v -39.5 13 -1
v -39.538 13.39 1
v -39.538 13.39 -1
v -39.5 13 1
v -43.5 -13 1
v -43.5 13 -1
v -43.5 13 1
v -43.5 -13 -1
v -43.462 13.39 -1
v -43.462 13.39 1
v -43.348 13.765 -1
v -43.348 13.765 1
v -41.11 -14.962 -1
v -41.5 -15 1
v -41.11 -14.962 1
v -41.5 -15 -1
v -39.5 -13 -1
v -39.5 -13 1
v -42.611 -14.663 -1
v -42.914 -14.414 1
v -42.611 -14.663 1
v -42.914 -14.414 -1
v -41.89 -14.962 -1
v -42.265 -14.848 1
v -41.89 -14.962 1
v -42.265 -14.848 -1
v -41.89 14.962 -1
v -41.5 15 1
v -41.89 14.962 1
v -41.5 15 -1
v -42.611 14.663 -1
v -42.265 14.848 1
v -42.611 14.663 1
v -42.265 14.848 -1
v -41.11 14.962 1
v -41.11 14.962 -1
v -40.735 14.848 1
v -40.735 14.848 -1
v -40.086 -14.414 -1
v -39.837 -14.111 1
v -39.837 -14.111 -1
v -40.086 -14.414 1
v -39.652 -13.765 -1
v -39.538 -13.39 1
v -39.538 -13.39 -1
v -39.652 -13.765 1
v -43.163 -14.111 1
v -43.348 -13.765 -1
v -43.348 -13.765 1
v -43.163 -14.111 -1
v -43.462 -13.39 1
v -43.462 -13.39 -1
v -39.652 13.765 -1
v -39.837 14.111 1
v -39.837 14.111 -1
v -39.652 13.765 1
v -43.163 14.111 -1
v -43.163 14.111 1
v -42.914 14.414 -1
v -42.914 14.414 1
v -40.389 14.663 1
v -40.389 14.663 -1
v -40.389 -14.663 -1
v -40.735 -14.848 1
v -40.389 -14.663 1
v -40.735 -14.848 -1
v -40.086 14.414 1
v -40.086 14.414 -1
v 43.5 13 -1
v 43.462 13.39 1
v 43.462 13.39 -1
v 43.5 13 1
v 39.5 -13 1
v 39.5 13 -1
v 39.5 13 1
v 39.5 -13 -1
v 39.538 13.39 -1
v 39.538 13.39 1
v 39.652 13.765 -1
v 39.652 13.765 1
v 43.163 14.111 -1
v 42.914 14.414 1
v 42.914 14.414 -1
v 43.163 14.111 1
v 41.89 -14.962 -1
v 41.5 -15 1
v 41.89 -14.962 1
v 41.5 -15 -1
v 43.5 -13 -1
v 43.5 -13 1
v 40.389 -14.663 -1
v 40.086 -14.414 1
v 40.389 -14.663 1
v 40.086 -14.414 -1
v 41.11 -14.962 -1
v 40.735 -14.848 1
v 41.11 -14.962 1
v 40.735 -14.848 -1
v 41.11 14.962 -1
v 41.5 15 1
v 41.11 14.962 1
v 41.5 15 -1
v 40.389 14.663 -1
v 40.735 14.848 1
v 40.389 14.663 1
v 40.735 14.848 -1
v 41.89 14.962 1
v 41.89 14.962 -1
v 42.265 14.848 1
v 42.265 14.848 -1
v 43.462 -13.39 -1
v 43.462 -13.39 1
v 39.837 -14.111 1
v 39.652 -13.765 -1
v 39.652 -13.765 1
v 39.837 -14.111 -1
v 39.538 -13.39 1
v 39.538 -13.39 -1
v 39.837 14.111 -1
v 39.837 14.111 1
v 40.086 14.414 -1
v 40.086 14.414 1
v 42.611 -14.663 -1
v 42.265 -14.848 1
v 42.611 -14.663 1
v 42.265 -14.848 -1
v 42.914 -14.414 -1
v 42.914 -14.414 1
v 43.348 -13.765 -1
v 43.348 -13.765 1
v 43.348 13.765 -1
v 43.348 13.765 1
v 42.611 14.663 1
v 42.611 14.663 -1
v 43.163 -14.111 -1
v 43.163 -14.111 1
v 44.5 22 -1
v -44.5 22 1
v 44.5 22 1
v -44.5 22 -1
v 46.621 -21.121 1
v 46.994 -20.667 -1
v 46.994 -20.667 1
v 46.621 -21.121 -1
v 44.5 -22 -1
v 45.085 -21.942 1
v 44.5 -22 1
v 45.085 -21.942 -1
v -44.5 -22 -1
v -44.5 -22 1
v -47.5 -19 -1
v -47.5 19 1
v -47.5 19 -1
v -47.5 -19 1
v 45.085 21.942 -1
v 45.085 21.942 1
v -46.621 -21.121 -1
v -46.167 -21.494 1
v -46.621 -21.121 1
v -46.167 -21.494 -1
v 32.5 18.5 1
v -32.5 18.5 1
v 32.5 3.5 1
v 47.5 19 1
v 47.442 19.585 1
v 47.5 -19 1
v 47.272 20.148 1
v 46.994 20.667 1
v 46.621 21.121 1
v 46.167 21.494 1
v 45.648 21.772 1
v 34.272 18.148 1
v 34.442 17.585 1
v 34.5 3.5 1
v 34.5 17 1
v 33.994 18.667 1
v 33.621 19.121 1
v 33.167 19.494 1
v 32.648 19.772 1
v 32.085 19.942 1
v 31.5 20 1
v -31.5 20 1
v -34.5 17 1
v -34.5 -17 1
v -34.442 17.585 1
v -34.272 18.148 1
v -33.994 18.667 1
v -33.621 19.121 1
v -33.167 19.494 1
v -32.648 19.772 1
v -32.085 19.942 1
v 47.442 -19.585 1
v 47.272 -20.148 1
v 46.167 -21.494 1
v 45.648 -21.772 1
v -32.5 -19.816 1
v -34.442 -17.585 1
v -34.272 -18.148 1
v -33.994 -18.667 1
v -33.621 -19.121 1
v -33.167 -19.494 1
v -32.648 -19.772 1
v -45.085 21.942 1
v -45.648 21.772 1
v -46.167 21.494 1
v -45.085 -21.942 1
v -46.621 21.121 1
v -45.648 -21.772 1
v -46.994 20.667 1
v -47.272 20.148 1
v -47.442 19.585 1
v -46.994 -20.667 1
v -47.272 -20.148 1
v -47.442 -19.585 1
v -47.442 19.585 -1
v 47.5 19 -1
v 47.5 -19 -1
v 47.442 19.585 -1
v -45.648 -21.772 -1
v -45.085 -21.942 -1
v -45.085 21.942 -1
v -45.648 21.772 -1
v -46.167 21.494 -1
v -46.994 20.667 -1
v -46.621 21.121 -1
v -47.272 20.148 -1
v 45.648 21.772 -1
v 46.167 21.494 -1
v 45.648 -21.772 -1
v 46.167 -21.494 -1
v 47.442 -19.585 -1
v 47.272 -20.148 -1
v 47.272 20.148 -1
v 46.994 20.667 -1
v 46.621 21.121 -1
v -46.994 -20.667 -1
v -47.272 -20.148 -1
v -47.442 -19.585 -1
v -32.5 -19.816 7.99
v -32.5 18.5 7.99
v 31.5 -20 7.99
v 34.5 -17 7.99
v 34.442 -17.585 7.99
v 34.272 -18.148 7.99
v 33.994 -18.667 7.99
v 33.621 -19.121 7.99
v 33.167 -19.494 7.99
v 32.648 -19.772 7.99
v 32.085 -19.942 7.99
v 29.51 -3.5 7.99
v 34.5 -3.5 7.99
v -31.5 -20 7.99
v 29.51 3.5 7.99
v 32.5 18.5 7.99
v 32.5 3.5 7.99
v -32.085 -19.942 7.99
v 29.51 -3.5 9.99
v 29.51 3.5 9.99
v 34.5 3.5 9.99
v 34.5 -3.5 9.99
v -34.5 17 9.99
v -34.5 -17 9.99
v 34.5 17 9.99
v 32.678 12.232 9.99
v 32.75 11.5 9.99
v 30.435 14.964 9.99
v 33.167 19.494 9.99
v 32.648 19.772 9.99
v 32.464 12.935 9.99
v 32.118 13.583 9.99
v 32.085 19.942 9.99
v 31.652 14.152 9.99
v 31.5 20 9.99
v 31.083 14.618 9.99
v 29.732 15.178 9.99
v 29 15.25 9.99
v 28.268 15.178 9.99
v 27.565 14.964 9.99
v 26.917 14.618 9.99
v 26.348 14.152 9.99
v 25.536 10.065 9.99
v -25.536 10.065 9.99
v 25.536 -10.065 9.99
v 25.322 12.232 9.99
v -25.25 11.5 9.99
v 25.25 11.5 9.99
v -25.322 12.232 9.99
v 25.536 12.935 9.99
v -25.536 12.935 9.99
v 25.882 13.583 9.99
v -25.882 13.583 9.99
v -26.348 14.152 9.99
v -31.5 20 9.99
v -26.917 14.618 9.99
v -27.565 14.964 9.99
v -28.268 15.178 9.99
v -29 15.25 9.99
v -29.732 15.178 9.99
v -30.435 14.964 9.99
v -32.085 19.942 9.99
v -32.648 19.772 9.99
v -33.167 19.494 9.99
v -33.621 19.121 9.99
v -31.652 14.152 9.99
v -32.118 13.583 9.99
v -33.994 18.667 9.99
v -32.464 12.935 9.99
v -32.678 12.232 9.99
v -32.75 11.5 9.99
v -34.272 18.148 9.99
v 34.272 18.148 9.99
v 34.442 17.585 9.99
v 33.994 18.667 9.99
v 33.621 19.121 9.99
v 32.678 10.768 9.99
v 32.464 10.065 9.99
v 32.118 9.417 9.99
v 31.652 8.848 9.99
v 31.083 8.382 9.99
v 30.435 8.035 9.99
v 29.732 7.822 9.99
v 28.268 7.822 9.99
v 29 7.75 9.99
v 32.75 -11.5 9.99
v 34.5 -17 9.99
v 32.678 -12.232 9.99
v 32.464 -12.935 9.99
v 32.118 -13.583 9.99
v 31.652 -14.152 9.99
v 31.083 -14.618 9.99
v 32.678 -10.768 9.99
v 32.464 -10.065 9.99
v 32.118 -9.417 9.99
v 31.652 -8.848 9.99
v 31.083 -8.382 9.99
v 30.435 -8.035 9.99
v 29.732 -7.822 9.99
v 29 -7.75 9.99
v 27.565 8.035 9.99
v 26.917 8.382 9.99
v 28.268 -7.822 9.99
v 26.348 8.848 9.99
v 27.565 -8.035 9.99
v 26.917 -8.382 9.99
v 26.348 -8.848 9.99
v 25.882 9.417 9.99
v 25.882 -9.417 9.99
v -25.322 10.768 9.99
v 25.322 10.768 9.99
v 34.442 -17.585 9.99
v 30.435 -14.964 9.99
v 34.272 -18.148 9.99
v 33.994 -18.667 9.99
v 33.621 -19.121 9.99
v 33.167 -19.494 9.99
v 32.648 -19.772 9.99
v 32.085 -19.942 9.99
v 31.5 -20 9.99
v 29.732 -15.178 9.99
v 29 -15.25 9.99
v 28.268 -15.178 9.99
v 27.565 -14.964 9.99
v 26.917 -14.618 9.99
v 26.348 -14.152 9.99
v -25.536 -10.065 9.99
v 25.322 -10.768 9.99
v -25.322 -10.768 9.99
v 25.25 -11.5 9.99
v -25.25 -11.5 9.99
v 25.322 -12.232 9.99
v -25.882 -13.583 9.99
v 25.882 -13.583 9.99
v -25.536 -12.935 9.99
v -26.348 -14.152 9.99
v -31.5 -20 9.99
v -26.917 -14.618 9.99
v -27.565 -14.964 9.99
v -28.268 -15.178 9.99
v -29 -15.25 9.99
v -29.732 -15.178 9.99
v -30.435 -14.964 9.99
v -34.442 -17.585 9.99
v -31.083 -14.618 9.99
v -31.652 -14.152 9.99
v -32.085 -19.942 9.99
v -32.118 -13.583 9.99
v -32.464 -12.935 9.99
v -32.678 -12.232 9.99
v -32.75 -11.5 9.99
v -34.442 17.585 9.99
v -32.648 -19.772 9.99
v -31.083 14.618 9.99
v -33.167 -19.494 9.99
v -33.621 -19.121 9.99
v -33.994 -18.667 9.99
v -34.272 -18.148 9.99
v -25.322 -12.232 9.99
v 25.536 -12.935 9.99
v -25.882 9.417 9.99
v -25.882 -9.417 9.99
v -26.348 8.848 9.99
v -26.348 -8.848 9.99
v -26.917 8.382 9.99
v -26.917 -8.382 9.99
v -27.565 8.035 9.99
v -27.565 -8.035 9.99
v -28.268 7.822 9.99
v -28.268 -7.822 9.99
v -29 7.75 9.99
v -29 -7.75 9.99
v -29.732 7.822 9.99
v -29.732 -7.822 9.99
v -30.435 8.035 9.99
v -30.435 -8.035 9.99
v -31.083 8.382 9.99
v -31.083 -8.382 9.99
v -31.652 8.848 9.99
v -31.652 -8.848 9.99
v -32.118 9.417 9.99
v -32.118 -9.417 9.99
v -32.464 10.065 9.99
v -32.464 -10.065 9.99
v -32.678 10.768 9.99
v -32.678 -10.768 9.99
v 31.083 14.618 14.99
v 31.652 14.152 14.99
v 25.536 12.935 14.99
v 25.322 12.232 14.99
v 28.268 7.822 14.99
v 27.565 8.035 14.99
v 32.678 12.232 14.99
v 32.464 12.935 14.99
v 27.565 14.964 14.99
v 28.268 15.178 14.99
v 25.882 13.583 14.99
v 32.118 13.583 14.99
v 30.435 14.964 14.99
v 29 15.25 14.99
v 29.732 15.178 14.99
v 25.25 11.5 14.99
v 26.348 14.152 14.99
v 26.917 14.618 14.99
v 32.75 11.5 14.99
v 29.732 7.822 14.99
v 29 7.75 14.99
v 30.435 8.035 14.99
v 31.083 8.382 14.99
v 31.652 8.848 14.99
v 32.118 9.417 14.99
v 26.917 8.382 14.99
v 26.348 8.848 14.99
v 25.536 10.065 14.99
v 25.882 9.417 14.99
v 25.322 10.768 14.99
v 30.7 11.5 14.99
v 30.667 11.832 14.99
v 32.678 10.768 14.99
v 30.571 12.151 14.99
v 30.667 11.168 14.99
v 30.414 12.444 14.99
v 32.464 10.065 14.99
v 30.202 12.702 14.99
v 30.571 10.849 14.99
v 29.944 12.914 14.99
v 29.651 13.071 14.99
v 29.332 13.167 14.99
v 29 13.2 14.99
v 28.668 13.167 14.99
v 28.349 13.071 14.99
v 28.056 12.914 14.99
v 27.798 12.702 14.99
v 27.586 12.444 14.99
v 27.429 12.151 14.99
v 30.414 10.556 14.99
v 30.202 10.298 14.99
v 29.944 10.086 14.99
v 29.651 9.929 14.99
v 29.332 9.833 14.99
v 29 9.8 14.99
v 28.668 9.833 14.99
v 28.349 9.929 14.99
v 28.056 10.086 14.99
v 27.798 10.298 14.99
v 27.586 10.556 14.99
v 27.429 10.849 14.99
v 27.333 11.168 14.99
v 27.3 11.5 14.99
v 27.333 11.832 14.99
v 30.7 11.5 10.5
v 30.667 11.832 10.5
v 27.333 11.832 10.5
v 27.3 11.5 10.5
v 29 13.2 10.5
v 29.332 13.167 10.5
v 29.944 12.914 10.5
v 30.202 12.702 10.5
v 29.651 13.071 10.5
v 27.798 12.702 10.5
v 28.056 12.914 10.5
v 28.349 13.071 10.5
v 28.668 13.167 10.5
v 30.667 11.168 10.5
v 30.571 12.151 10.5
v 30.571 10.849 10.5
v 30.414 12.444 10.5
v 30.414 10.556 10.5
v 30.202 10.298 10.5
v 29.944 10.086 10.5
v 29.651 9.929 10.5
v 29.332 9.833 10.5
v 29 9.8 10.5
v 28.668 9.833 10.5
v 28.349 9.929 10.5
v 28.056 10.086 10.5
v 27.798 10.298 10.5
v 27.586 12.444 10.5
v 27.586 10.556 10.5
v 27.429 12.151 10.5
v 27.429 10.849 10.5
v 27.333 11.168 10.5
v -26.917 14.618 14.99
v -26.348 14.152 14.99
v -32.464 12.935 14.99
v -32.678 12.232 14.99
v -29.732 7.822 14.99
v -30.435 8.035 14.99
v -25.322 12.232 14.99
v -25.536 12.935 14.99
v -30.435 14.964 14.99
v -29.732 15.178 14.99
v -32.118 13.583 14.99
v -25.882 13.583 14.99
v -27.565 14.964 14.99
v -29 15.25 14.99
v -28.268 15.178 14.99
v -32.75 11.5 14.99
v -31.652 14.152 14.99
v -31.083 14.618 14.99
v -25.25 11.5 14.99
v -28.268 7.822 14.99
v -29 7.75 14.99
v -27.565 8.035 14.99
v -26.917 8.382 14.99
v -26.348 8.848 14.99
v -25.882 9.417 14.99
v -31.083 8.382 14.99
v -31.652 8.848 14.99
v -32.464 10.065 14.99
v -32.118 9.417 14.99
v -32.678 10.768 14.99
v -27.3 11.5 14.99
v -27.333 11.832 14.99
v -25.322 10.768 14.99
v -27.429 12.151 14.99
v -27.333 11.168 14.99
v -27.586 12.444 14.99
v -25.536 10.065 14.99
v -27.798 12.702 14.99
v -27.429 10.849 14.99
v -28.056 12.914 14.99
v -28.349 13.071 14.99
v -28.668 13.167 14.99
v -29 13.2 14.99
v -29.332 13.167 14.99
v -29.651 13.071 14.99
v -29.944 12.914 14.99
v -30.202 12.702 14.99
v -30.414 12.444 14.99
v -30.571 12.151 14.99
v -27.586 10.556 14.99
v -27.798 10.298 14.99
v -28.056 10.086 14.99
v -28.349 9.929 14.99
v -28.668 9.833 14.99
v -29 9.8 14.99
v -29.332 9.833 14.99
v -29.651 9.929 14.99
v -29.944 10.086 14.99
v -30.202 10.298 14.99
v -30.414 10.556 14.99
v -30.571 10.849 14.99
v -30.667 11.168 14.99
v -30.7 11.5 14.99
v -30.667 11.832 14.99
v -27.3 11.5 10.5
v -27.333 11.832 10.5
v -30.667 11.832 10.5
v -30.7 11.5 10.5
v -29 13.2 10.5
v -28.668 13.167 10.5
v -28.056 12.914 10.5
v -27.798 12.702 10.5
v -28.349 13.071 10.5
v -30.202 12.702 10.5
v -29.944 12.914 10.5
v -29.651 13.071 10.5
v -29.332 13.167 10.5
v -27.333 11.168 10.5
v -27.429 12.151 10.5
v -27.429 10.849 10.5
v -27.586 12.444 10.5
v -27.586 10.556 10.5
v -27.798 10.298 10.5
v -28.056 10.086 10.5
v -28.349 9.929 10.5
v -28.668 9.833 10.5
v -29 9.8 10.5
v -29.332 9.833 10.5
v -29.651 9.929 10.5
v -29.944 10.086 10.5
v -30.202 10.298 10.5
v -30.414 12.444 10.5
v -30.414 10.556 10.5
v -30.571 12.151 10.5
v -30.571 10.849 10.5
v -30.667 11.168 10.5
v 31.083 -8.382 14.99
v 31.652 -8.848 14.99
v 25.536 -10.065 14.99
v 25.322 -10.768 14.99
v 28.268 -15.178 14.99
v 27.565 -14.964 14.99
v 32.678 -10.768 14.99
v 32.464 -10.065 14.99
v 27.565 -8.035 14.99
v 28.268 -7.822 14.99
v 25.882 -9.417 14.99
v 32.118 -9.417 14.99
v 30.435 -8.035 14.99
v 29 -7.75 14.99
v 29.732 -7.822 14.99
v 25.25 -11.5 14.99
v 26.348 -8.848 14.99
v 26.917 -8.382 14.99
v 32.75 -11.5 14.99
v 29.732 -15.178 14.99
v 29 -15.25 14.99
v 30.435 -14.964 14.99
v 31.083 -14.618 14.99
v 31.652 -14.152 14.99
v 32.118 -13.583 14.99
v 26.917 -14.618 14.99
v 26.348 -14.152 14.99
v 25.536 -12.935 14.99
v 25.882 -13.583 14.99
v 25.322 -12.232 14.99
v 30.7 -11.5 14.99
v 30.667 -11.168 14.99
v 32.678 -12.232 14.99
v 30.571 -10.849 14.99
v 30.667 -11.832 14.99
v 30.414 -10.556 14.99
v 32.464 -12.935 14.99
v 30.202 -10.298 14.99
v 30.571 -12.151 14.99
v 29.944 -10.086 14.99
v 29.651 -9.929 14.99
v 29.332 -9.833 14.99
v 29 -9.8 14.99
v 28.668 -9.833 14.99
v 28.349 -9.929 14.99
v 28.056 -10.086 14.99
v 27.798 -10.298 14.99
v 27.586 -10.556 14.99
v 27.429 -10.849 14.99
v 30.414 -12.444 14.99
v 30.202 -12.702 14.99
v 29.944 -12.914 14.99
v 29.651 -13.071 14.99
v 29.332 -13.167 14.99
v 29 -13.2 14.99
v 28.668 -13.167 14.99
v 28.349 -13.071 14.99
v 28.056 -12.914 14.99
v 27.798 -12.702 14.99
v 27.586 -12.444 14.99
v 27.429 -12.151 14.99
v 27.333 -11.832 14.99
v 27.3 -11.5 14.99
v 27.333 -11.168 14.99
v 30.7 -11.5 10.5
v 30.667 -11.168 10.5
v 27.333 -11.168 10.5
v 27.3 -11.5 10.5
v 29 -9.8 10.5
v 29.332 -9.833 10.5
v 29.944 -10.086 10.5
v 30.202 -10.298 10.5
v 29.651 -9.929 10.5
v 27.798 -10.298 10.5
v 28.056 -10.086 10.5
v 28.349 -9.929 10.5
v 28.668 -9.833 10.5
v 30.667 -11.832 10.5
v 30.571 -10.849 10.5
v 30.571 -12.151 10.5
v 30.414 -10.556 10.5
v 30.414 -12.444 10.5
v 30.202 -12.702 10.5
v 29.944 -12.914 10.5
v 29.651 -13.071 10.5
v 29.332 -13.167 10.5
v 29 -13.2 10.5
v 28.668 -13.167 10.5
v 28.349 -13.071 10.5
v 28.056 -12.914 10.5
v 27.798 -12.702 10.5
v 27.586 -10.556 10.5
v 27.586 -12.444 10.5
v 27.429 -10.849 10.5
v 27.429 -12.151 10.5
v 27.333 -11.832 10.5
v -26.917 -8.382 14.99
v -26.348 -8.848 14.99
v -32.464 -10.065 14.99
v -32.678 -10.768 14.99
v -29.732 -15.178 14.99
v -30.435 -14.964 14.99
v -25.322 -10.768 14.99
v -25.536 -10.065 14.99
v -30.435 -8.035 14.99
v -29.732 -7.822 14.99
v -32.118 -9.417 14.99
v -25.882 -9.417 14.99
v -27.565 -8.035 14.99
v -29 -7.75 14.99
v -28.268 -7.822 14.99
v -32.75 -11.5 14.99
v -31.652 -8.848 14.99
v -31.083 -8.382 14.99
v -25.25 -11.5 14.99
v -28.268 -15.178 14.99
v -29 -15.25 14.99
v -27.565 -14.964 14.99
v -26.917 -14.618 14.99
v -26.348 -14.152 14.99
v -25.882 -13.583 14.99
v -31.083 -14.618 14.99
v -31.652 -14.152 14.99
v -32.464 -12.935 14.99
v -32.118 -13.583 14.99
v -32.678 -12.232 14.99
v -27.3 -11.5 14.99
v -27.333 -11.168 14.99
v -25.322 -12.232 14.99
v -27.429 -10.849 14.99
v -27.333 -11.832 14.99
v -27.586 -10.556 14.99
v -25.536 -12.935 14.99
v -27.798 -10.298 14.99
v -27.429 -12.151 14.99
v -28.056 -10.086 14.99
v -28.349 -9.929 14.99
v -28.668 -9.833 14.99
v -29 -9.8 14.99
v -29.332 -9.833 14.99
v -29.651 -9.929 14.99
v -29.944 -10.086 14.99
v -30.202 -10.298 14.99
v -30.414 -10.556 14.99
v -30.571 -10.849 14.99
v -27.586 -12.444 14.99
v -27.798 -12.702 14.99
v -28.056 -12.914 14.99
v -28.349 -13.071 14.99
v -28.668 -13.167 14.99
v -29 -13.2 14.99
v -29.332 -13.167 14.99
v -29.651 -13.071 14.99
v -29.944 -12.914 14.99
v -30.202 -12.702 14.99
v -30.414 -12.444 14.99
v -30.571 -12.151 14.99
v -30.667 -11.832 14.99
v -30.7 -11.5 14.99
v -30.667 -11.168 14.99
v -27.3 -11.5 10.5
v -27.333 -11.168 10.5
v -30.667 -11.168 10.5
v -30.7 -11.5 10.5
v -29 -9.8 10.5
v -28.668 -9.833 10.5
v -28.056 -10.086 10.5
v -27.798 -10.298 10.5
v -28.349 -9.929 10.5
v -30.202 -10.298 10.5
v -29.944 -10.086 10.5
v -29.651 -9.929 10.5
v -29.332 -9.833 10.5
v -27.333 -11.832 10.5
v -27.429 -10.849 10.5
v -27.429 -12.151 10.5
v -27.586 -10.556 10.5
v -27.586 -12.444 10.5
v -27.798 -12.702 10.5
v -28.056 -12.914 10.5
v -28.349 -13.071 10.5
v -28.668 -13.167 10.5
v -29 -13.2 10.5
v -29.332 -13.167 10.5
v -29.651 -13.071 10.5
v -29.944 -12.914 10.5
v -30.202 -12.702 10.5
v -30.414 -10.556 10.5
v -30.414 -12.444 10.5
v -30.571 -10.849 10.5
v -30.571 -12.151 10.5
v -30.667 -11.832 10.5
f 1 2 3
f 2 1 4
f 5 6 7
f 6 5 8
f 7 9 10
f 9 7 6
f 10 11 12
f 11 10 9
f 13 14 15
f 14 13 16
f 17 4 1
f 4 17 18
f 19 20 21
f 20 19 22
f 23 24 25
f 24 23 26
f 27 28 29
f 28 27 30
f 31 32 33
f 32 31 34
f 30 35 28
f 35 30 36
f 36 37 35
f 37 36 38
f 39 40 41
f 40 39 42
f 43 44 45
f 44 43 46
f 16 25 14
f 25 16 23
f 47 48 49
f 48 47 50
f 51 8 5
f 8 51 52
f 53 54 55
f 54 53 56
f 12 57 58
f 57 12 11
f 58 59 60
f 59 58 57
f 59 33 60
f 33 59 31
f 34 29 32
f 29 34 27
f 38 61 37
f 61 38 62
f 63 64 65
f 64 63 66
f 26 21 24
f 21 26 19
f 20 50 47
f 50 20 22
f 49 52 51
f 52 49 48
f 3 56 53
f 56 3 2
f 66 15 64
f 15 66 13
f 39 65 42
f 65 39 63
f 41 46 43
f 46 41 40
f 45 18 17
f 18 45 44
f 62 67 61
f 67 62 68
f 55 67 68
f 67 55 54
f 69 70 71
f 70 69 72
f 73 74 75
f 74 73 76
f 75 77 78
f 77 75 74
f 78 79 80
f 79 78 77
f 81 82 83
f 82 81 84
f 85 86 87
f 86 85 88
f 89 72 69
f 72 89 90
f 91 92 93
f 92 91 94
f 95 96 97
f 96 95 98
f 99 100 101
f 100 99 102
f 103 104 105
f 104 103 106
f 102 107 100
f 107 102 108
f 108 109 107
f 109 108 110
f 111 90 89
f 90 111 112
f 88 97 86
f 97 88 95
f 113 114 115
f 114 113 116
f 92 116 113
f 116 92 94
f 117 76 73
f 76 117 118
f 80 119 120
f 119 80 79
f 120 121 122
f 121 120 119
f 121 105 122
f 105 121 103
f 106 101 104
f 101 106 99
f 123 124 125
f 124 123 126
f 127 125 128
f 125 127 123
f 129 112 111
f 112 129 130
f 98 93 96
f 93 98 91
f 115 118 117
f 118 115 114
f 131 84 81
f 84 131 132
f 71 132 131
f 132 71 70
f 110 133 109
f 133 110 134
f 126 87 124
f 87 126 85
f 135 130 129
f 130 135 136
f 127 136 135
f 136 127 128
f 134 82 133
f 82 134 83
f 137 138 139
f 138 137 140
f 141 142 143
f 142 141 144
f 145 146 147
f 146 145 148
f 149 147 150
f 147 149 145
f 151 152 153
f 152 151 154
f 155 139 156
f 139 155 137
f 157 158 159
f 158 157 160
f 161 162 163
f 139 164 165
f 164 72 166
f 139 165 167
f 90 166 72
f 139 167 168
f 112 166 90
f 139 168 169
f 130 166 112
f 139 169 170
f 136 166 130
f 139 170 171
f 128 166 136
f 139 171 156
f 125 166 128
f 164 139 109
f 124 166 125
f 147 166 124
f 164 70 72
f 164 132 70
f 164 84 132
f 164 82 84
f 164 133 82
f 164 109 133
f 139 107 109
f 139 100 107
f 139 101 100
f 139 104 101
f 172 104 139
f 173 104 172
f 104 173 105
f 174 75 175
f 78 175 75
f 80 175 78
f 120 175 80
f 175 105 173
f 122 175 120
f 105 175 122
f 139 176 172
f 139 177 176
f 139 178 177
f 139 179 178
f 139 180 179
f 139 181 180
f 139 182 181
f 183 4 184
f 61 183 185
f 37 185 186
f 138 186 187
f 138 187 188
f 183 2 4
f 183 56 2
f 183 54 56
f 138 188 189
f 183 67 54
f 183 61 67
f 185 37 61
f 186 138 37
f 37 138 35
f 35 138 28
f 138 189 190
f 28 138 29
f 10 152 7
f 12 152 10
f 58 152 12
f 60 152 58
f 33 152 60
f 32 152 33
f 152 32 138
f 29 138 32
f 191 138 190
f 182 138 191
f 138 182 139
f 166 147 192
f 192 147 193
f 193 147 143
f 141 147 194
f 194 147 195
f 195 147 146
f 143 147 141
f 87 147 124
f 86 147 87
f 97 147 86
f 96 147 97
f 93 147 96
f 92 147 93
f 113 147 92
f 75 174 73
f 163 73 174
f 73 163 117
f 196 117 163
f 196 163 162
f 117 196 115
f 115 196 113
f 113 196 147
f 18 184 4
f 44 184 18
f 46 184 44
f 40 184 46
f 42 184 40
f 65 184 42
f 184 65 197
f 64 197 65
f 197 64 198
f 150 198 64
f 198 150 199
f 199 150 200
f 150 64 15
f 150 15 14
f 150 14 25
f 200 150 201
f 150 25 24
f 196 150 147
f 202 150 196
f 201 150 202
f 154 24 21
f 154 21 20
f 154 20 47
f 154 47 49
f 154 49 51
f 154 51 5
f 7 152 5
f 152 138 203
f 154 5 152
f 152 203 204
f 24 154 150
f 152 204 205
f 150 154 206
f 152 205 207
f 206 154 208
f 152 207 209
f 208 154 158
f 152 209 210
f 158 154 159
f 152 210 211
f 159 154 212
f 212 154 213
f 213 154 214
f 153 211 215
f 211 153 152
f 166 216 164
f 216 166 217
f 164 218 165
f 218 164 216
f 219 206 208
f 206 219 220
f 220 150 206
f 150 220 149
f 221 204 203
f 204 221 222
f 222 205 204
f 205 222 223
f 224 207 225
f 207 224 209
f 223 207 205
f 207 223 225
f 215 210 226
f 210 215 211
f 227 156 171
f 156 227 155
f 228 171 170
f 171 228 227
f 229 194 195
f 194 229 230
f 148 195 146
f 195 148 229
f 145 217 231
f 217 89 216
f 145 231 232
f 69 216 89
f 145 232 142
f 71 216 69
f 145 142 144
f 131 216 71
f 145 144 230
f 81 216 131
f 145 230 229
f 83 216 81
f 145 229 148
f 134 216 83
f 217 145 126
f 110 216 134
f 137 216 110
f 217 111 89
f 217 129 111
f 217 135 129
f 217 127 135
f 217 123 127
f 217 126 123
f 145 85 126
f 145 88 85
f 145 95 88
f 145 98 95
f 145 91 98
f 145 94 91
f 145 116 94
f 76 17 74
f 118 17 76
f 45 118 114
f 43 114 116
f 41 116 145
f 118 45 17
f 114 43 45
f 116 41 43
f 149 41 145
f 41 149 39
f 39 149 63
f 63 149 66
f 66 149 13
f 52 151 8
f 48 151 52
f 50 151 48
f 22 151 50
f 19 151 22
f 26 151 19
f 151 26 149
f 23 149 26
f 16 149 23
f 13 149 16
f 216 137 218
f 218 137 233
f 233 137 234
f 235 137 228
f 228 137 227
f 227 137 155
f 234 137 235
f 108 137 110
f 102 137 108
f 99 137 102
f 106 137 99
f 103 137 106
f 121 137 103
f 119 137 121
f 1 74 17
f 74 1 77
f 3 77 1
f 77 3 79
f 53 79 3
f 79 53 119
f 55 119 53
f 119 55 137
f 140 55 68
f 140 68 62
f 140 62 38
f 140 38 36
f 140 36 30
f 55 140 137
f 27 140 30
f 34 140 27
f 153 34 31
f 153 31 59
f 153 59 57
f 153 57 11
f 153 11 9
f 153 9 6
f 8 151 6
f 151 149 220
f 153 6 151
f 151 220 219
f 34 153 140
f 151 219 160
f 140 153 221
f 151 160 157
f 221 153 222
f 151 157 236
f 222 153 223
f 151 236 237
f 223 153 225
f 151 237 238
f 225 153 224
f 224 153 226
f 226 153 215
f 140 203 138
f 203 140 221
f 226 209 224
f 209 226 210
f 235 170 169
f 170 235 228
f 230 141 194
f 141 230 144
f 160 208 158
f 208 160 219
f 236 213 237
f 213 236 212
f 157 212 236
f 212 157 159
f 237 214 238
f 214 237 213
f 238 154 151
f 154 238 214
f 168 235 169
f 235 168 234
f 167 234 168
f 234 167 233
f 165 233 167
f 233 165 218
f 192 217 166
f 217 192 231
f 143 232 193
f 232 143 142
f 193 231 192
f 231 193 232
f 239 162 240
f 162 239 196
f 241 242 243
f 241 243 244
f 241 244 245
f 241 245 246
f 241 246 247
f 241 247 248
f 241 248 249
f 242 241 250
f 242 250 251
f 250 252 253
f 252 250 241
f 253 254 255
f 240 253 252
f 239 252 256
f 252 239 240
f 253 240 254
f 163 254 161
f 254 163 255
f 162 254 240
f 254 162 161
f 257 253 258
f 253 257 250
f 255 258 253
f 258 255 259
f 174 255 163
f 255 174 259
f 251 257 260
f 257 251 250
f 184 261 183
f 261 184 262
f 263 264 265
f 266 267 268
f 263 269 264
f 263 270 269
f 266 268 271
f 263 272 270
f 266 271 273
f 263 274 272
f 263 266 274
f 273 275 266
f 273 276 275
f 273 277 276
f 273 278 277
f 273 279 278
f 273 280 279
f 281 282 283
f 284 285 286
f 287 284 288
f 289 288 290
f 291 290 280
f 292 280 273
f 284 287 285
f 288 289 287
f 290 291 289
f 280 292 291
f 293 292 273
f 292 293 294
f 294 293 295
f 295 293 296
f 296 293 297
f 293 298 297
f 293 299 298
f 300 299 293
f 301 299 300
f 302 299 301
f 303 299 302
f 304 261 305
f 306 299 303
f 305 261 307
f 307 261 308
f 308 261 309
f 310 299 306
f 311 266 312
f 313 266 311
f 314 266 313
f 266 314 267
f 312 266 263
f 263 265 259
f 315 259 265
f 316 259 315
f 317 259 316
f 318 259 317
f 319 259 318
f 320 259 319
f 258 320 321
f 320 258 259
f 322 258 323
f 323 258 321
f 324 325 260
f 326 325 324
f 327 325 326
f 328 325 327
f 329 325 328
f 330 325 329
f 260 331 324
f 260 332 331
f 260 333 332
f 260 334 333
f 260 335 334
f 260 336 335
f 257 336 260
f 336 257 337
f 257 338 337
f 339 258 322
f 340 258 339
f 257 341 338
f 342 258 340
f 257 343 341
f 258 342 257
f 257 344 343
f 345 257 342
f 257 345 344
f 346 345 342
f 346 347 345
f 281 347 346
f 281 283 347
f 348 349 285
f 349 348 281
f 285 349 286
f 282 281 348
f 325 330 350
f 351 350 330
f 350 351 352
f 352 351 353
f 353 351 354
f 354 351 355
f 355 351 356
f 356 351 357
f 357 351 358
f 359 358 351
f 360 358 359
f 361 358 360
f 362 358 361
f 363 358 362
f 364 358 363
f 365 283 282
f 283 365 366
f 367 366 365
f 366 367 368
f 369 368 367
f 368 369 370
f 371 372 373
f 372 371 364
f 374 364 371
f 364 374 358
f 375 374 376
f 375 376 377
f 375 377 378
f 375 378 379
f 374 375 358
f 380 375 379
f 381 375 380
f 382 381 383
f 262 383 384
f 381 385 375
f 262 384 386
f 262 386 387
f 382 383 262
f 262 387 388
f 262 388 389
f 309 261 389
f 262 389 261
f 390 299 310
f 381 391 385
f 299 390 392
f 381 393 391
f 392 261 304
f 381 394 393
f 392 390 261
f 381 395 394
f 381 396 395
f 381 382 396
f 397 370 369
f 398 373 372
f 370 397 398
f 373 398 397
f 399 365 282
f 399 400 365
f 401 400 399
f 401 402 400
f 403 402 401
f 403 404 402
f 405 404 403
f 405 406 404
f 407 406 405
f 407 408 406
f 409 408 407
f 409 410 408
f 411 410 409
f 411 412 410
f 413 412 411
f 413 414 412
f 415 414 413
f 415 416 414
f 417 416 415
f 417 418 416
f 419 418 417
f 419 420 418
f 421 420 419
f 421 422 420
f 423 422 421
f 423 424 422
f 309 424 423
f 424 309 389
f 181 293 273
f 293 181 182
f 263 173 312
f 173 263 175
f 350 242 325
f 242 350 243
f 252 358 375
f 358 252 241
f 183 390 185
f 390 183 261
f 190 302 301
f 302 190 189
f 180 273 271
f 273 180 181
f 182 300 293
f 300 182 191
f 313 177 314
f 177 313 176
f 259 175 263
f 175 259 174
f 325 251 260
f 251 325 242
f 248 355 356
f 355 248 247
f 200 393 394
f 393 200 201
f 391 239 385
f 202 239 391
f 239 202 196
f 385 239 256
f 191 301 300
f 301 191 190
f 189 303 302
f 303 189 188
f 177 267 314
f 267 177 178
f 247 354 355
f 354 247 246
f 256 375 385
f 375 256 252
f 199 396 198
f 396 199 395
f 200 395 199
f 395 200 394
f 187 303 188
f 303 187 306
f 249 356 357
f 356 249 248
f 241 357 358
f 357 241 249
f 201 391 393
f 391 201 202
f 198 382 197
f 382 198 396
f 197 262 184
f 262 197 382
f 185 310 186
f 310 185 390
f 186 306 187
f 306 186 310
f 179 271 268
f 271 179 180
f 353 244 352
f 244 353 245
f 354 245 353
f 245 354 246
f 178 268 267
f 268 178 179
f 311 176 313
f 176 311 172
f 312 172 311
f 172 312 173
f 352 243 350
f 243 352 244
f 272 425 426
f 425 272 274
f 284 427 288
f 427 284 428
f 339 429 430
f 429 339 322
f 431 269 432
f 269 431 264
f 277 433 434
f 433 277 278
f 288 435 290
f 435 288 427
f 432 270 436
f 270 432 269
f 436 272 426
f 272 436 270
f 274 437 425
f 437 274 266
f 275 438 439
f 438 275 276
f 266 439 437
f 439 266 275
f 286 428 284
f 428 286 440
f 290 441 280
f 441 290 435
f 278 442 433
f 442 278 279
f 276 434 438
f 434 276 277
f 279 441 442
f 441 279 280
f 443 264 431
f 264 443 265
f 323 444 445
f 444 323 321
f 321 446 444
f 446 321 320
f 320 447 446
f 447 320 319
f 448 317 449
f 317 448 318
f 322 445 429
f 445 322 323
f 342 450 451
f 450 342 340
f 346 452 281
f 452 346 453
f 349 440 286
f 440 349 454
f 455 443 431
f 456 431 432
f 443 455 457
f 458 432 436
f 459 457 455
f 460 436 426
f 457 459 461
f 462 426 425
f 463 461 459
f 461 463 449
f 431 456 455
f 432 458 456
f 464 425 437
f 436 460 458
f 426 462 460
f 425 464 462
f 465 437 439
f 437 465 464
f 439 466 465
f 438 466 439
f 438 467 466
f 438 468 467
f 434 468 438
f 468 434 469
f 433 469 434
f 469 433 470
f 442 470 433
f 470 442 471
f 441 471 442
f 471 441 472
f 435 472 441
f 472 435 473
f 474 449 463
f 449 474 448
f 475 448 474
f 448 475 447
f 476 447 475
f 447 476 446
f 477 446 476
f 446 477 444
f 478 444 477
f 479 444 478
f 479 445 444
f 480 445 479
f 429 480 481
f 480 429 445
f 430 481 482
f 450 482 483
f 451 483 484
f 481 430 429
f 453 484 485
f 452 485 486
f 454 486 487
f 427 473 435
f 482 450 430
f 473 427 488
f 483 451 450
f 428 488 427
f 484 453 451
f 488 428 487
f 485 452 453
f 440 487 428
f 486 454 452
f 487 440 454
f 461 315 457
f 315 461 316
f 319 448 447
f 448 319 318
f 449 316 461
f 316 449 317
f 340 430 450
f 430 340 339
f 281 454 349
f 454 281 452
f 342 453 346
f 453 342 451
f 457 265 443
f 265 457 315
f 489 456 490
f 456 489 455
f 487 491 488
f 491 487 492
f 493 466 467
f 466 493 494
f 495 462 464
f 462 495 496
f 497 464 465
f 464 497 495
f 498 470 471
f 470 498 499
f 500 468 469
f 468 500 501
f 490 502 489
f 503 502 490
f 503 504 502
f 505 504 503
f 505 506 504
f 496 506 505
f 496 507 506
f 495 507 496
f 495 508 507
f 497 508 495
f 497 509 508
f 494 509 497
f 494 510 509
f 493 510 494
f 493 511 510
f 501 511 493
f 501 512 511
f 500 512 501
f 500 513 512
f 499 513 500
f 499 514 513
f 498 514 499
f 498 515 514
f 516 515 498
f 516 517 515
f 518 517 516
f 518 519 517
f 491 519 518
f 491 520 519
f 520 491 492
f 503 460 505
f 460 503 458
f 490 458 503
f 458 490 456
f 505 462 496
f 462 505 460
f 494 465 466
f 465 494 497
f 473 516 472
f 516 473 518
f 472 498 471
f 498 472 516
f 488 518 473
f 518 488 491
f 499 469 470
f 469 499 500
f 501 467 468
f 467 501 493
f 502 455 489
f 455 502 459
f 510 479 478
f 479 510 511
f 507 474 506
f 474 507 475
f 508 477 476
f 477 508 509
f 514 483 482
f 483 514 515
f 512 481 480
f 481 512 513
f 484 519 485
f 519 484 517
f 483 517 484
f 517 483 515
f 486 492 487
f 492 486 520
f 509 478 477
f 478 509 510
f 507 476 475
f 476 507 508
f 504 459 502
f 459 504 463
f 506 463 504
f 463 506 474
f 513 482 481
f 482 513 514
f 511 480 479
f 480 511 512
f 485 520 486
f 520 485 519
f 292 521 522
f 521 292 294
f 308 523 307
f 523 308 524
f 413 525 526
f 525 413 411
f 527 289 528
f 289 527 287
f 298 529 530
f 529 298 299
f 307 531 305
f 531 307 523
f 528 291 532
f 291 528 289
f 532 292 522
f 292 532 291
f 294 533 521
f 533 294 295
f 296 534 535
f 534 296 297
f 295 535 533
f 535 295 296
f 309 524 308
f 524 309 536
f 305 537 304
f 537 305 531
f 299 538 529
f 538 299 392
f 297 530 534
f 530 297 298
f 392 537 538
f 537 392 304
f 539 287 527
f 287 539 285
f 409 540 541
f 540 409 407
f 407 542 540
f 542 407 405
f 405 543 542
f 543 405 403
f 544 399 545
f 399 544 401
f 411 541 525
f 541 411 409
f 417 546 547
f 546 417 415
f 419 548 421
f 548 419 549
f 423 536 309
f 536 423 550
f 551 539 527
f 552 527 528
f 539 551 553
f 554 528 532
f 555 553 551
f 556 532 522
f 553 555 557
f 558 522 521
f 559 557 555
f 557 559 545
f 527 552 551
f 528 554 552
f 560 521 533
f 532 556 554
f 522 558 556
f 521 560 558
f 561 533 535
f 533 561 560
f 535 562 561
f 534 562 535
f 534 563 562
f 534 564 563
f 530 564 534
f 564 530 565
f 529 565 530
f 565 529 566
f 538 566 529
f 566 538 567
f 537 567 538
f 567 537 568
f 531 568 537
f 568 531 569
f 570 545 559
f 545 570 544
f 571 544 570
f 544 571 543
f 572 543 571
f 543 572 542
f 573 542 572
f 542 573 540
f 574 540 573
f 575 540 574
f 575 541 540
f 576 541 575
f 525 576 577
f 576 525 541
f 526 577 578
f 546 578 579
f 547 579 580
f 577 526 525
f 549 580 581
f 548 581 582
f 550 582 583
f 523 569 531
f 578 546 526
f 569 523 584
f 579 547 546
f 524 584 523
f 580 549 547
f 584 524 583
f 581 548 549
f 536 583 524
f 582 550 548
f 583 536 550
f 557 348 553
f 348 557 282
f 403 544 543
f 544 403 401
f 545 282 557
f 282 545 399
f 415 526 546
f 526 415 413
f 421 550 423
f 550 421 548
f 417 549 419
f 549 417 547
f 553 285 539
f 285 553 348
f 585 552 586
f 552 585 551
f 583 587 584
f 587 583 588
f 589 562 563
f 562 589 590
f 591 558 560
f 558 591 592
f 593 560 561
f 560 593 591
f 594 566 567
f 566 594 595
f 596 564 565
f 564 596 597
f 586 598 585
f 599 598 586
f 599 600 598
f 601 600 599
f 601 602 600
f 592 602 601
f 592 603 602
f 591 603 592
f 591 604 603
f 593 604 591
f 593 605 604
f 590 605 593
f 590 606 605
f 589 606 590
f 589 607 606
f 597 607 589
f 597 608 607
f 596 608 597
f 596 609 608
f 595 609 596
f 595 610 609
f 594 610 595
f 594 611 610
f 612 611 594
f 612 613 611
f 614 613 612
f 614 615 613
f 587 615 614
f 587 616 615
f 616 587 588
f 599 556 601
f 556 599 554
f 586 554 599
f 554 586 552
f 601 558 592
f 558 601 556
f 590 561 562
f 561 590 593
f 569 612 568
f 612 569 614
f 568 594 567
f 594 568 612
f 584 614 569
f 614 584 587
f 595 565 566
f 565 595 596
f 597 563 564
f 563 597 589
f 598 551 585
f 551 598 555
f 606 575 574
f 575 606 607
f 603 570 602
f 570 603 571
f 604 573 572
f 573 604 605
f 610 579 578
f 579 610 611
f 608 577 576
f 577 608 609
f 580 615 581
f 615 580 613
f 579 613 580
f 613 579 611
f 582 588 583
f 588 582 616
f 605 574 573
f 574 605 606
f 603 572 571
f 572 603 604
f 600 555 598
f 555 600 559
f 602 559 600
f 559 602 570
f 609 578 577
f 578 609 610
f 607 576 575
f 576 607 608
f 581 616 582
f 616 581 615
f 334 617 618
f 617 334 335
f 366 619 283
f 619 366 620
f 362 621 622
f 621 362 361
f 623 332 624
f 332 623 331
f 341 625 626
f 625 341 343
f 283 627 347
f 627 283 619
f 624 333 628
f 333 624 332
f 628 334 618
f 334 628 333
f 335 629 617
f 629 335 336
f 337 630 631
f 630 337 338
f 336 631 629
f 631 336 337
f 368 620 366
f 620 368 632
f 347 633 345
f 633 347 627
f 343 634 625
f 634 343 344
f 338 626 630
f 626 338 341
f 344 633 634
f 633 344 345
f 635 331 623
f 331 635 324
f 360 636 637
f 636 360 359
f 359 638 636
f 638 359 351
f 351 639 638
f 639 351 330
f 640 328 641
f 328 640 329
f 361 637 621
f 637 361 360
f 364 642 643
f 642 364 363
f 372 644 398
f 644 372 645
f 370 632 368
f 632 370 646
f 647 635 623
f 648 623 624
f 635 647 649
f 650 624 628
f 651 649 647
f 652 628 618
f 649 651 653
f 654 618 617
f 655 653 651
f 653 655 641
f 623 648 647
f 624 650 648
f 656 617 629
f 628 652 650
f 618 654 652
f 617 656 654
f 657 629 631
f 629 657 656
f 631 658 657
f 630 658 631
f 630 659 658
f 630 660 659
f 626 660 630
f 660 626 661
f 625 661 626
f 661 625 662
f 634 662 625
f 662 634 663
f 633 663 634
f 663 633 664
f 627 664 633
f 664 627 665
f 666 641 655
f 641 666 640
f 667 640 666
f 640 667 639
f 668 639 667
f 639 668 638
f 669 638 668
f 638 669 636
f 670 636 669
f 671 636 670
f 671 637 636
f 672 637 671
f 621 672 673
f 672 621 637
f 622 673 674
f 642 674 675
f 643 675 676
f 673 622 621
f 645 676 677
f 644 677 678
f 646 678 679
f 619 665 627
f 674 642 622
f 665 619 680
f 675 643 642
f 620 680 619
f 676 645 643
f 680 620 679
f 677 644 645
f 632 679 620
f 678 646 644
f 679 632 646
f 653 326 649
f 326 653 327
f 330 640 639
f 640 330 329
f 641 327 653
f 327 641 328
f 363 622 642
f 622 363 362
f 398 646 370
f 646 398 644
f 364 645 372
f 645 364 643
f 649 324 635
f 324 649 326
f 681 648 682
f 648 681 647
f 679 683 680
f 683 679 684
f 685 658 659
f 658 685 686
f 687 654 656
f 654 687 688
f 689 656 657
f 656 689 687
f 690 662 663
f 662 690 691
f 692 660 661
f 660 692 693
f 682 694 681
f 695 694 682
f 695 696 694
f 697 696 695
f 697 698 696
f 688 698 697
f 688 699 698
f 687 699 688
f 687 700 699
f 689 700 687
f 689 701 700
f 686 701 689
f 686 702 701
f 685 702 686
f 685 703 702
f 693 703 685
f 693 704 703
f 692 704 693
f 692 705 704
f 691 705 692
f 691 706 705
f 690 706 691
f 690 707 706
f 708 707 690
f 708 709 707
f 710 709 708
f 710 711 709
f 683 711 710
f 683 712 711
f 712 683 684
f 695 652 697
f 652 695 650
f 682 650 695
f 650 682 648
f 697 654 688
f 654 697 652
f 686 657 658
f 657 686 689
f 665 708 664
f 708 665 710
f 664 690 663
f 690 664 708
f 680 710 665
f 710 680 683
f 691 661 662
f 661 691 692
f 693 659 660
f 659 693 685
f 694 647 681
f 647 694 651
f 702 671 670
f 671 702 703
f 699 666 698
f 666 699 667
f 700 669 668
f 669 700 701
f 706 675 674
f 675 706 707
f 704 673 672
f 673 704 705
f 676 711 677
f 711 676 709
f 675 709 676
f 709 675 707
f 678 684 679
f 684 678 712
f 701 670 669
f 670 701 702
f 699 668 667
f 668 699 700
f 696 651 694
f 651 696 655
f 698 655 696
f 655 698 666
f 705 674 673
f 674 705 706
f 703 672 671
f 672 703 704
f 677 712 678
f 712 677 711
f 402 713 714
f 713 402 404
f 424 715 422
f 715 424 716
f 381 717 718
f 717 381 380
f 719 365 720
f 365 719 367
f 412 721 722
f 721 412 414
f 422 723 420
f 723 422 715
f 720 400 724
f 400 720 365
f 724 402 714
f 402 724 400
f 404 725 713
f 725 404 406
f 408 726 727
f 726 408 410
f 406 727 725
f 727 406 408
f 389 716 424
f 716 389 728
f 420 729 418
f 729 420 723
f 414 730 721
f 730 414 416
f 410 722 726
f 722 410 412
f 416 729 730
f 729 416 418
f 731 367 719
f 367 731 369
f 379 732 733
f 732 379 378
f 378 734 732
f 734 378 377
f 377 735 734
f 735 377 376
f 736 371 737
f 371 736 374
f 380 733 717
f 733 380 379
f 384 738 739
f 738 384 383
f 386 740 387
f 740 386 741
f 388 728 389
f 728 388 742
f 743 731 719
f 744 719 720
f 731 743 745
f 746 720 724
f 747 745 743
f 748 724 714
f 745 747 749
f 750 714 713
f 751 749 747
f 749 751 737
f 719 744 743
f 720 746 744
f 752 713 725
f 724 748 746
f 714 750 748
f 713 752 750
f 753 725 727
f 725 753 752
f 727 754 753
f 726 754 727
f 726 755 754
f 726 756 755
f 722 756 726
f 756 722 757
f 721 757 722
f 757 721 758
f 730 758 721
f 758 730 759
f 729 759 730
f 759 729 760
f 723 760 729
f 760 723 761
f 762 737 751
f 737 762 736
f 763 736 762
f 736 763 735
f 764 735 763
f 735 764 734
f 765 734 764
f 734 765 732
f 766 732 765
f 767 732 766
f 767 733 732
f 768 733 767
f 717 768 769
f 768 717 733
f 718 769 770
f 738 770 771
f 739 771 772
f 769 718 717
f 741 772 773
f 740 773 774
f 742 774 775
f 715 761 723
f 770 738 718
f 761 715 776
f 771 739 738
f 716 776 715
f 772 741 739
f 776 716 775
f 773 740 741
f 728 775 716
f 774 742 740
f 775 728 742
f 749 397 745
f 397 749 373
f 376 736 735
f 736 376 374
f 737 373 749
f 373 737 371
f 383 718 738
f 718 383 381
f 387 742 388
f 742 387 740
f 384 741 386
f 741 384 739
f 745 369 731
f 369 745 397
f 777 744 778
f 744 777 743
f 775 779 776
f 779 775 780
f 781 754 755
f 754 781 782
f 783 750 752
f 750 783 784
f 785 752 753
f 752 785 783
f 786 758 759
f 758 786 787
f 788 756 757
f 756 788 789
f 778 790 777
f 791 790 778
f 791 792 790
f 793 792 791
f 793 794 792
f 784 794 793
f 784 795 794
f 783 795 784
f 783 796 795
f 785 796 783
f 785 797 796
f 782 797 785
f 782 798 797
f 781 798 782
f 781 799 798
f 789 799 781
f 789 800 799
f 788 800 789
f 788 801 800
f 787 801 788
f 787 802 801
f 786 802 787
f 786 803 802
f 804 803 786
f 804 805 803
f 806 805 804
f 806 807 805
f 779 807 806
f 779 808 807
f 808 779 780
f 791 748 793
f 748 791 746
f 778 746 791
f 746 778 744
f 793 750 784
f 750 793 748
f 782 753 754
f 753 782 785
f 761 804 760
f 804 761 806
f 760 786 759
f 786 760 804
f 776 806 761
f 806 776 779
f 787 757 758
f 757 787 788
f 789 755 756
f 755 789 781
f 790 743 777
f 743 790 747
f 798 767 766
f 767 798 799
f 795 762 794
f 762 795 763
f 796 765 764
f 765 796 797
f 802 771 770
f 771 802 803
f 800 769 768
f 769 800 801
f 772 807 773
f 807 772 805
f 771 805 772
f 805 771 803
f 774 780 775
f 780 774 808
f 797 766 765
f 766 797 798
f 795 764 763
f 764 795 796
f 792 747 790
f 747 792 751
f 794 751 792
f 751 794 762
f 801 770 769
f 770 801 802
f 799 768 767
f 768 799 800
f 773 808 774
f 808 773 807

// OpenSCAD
$fn = 32;

module roundrect( width, depth, height, r_c ) {
	hull() {
		translate( [-(width/2)+r_c, -(depth/2)+r_c, 0] ) cylinder( r=r_c, h=height, center=true );
		translate( [(width/2)-r_c, (depth/2)-r_c, 0 ] ) cylinder( r=r_c, h=height, center=true );
		translate( [-(width/2)+r_c, (depth/2)-r_c, 0] ) cylinder( r=r_c, h=height, center=true );
		translate( [(width/2)-r_c, -(depth/2)+r_c, 0] ) cylinder( r=r_c, h=height, center=true );
	}
}

module standoff( diameter, hole, height, holeHeight) {
    difference()
    {
        cylinder(d=diameter, h=height, center=true);
        translate([0, 0, (height-holeHeight) / 2 + 0.01]) cylinder(d=hole, h=holeHeight, center=true);
    }
}
overallWidth = 95;
overallDepth = 44;
baseThickness = 2;
cornerRadius = 3;
beltDepth = 30;
beltWidth = 4;
beltRadius = 2;
beltOffset = 4;

batteryWall = 2;
batteryCavityWidth = 65;
batteryCavityDepth = 37;
batteryCavityHeight = 7;
batteryWidth = batteryCavityWidth + (2 * batteryWall);
batteryDepth = batteryCavityDepth + (1.5 * batteryWall);
batteryHeight = batteryCavityHeight + batteryWall;
batteryWireCutoutWidth = 5;
batteryWireCutoutDepth = 7;

standoffX = 58;
standoffY = 23;
standoffDiameter = 7.5;
standoffHole = 3.4;
standoffHeight = 5;
standoffHoleDepth = 4.5;

/* Base plate */
difference()
{
    roundrect(overallWidth,overallDepth,baseThickness,cornerRadius);
    union()
    {
        translate([-(overallWidth/2)+beltOffset+(beltWidth/2), 0, 0]) roundrect(beltWidth, beltDepth, 2 * baseThickness, beltRadius);
        translate([(overallWidth/2)-beltOffset-(beltWidth/2), 0, 0]) roundrect(beltWidth, beltDepth, 2 * baseThickness, beltRadius);
    }
}

/* Battery compartment */
translate([0, 0, (batteryHeight/2 + baseThickness/2 - 0.01)]) difference()
{
    roundrect(batteryWidth, batteryDepth, batteryHeight, cornerRadius);
    translate([0, 0, -(batteryWall/2)]) union()
    {
        cube([batteryCavityWidth, batteryCavityDepth, batteryCavityHeight], center=true);
        translate([(batteryWall + 0.01) / 2, -((batteryCavityDepth/2) + batteryWall + 0.01) / 2, 0]) cube([batteryCavityWidth + batteryWall + 0.01, (batteryCavityDepth/2 + 5) + batteryWall + 0.01, batteryCavityHeight], center=true);
        translate([(batteryWidth - batteryWireCutoutWidth)/2+0.01, 0, 0]) cube([batteryWireCutoutWidth, batteryWireCutoutDepth, batteryHeight + 2.01], center=true);
    }
}

/* Standoffs */
translate([0, 0, batteryHeight + (baseThickness/2) + (standoffHeight/2) - 0.01])
union()
{
    translate([standoffX/2, standoffY/2, 0]) standoff(standoffDiameter, standoffHole, standoffHeight, standoffHoleDepth);
    translate([-standoffX/2, standoffY/2, 0]) standoff(standoffDiameter, standoffHole, standoffHeight, standoffHoleDepth);
    translate([standoffX/2, -standoffY/2, 0]) standoff(standoffDiameter, standoffHole, standoffHeight, standoffHoleDepth);
    translate([-standoffX/2, -standoffY/2, 0]) standoff(standoffDiameter, standoffHole, standoffHeight, standoffHoleDepth);
}
